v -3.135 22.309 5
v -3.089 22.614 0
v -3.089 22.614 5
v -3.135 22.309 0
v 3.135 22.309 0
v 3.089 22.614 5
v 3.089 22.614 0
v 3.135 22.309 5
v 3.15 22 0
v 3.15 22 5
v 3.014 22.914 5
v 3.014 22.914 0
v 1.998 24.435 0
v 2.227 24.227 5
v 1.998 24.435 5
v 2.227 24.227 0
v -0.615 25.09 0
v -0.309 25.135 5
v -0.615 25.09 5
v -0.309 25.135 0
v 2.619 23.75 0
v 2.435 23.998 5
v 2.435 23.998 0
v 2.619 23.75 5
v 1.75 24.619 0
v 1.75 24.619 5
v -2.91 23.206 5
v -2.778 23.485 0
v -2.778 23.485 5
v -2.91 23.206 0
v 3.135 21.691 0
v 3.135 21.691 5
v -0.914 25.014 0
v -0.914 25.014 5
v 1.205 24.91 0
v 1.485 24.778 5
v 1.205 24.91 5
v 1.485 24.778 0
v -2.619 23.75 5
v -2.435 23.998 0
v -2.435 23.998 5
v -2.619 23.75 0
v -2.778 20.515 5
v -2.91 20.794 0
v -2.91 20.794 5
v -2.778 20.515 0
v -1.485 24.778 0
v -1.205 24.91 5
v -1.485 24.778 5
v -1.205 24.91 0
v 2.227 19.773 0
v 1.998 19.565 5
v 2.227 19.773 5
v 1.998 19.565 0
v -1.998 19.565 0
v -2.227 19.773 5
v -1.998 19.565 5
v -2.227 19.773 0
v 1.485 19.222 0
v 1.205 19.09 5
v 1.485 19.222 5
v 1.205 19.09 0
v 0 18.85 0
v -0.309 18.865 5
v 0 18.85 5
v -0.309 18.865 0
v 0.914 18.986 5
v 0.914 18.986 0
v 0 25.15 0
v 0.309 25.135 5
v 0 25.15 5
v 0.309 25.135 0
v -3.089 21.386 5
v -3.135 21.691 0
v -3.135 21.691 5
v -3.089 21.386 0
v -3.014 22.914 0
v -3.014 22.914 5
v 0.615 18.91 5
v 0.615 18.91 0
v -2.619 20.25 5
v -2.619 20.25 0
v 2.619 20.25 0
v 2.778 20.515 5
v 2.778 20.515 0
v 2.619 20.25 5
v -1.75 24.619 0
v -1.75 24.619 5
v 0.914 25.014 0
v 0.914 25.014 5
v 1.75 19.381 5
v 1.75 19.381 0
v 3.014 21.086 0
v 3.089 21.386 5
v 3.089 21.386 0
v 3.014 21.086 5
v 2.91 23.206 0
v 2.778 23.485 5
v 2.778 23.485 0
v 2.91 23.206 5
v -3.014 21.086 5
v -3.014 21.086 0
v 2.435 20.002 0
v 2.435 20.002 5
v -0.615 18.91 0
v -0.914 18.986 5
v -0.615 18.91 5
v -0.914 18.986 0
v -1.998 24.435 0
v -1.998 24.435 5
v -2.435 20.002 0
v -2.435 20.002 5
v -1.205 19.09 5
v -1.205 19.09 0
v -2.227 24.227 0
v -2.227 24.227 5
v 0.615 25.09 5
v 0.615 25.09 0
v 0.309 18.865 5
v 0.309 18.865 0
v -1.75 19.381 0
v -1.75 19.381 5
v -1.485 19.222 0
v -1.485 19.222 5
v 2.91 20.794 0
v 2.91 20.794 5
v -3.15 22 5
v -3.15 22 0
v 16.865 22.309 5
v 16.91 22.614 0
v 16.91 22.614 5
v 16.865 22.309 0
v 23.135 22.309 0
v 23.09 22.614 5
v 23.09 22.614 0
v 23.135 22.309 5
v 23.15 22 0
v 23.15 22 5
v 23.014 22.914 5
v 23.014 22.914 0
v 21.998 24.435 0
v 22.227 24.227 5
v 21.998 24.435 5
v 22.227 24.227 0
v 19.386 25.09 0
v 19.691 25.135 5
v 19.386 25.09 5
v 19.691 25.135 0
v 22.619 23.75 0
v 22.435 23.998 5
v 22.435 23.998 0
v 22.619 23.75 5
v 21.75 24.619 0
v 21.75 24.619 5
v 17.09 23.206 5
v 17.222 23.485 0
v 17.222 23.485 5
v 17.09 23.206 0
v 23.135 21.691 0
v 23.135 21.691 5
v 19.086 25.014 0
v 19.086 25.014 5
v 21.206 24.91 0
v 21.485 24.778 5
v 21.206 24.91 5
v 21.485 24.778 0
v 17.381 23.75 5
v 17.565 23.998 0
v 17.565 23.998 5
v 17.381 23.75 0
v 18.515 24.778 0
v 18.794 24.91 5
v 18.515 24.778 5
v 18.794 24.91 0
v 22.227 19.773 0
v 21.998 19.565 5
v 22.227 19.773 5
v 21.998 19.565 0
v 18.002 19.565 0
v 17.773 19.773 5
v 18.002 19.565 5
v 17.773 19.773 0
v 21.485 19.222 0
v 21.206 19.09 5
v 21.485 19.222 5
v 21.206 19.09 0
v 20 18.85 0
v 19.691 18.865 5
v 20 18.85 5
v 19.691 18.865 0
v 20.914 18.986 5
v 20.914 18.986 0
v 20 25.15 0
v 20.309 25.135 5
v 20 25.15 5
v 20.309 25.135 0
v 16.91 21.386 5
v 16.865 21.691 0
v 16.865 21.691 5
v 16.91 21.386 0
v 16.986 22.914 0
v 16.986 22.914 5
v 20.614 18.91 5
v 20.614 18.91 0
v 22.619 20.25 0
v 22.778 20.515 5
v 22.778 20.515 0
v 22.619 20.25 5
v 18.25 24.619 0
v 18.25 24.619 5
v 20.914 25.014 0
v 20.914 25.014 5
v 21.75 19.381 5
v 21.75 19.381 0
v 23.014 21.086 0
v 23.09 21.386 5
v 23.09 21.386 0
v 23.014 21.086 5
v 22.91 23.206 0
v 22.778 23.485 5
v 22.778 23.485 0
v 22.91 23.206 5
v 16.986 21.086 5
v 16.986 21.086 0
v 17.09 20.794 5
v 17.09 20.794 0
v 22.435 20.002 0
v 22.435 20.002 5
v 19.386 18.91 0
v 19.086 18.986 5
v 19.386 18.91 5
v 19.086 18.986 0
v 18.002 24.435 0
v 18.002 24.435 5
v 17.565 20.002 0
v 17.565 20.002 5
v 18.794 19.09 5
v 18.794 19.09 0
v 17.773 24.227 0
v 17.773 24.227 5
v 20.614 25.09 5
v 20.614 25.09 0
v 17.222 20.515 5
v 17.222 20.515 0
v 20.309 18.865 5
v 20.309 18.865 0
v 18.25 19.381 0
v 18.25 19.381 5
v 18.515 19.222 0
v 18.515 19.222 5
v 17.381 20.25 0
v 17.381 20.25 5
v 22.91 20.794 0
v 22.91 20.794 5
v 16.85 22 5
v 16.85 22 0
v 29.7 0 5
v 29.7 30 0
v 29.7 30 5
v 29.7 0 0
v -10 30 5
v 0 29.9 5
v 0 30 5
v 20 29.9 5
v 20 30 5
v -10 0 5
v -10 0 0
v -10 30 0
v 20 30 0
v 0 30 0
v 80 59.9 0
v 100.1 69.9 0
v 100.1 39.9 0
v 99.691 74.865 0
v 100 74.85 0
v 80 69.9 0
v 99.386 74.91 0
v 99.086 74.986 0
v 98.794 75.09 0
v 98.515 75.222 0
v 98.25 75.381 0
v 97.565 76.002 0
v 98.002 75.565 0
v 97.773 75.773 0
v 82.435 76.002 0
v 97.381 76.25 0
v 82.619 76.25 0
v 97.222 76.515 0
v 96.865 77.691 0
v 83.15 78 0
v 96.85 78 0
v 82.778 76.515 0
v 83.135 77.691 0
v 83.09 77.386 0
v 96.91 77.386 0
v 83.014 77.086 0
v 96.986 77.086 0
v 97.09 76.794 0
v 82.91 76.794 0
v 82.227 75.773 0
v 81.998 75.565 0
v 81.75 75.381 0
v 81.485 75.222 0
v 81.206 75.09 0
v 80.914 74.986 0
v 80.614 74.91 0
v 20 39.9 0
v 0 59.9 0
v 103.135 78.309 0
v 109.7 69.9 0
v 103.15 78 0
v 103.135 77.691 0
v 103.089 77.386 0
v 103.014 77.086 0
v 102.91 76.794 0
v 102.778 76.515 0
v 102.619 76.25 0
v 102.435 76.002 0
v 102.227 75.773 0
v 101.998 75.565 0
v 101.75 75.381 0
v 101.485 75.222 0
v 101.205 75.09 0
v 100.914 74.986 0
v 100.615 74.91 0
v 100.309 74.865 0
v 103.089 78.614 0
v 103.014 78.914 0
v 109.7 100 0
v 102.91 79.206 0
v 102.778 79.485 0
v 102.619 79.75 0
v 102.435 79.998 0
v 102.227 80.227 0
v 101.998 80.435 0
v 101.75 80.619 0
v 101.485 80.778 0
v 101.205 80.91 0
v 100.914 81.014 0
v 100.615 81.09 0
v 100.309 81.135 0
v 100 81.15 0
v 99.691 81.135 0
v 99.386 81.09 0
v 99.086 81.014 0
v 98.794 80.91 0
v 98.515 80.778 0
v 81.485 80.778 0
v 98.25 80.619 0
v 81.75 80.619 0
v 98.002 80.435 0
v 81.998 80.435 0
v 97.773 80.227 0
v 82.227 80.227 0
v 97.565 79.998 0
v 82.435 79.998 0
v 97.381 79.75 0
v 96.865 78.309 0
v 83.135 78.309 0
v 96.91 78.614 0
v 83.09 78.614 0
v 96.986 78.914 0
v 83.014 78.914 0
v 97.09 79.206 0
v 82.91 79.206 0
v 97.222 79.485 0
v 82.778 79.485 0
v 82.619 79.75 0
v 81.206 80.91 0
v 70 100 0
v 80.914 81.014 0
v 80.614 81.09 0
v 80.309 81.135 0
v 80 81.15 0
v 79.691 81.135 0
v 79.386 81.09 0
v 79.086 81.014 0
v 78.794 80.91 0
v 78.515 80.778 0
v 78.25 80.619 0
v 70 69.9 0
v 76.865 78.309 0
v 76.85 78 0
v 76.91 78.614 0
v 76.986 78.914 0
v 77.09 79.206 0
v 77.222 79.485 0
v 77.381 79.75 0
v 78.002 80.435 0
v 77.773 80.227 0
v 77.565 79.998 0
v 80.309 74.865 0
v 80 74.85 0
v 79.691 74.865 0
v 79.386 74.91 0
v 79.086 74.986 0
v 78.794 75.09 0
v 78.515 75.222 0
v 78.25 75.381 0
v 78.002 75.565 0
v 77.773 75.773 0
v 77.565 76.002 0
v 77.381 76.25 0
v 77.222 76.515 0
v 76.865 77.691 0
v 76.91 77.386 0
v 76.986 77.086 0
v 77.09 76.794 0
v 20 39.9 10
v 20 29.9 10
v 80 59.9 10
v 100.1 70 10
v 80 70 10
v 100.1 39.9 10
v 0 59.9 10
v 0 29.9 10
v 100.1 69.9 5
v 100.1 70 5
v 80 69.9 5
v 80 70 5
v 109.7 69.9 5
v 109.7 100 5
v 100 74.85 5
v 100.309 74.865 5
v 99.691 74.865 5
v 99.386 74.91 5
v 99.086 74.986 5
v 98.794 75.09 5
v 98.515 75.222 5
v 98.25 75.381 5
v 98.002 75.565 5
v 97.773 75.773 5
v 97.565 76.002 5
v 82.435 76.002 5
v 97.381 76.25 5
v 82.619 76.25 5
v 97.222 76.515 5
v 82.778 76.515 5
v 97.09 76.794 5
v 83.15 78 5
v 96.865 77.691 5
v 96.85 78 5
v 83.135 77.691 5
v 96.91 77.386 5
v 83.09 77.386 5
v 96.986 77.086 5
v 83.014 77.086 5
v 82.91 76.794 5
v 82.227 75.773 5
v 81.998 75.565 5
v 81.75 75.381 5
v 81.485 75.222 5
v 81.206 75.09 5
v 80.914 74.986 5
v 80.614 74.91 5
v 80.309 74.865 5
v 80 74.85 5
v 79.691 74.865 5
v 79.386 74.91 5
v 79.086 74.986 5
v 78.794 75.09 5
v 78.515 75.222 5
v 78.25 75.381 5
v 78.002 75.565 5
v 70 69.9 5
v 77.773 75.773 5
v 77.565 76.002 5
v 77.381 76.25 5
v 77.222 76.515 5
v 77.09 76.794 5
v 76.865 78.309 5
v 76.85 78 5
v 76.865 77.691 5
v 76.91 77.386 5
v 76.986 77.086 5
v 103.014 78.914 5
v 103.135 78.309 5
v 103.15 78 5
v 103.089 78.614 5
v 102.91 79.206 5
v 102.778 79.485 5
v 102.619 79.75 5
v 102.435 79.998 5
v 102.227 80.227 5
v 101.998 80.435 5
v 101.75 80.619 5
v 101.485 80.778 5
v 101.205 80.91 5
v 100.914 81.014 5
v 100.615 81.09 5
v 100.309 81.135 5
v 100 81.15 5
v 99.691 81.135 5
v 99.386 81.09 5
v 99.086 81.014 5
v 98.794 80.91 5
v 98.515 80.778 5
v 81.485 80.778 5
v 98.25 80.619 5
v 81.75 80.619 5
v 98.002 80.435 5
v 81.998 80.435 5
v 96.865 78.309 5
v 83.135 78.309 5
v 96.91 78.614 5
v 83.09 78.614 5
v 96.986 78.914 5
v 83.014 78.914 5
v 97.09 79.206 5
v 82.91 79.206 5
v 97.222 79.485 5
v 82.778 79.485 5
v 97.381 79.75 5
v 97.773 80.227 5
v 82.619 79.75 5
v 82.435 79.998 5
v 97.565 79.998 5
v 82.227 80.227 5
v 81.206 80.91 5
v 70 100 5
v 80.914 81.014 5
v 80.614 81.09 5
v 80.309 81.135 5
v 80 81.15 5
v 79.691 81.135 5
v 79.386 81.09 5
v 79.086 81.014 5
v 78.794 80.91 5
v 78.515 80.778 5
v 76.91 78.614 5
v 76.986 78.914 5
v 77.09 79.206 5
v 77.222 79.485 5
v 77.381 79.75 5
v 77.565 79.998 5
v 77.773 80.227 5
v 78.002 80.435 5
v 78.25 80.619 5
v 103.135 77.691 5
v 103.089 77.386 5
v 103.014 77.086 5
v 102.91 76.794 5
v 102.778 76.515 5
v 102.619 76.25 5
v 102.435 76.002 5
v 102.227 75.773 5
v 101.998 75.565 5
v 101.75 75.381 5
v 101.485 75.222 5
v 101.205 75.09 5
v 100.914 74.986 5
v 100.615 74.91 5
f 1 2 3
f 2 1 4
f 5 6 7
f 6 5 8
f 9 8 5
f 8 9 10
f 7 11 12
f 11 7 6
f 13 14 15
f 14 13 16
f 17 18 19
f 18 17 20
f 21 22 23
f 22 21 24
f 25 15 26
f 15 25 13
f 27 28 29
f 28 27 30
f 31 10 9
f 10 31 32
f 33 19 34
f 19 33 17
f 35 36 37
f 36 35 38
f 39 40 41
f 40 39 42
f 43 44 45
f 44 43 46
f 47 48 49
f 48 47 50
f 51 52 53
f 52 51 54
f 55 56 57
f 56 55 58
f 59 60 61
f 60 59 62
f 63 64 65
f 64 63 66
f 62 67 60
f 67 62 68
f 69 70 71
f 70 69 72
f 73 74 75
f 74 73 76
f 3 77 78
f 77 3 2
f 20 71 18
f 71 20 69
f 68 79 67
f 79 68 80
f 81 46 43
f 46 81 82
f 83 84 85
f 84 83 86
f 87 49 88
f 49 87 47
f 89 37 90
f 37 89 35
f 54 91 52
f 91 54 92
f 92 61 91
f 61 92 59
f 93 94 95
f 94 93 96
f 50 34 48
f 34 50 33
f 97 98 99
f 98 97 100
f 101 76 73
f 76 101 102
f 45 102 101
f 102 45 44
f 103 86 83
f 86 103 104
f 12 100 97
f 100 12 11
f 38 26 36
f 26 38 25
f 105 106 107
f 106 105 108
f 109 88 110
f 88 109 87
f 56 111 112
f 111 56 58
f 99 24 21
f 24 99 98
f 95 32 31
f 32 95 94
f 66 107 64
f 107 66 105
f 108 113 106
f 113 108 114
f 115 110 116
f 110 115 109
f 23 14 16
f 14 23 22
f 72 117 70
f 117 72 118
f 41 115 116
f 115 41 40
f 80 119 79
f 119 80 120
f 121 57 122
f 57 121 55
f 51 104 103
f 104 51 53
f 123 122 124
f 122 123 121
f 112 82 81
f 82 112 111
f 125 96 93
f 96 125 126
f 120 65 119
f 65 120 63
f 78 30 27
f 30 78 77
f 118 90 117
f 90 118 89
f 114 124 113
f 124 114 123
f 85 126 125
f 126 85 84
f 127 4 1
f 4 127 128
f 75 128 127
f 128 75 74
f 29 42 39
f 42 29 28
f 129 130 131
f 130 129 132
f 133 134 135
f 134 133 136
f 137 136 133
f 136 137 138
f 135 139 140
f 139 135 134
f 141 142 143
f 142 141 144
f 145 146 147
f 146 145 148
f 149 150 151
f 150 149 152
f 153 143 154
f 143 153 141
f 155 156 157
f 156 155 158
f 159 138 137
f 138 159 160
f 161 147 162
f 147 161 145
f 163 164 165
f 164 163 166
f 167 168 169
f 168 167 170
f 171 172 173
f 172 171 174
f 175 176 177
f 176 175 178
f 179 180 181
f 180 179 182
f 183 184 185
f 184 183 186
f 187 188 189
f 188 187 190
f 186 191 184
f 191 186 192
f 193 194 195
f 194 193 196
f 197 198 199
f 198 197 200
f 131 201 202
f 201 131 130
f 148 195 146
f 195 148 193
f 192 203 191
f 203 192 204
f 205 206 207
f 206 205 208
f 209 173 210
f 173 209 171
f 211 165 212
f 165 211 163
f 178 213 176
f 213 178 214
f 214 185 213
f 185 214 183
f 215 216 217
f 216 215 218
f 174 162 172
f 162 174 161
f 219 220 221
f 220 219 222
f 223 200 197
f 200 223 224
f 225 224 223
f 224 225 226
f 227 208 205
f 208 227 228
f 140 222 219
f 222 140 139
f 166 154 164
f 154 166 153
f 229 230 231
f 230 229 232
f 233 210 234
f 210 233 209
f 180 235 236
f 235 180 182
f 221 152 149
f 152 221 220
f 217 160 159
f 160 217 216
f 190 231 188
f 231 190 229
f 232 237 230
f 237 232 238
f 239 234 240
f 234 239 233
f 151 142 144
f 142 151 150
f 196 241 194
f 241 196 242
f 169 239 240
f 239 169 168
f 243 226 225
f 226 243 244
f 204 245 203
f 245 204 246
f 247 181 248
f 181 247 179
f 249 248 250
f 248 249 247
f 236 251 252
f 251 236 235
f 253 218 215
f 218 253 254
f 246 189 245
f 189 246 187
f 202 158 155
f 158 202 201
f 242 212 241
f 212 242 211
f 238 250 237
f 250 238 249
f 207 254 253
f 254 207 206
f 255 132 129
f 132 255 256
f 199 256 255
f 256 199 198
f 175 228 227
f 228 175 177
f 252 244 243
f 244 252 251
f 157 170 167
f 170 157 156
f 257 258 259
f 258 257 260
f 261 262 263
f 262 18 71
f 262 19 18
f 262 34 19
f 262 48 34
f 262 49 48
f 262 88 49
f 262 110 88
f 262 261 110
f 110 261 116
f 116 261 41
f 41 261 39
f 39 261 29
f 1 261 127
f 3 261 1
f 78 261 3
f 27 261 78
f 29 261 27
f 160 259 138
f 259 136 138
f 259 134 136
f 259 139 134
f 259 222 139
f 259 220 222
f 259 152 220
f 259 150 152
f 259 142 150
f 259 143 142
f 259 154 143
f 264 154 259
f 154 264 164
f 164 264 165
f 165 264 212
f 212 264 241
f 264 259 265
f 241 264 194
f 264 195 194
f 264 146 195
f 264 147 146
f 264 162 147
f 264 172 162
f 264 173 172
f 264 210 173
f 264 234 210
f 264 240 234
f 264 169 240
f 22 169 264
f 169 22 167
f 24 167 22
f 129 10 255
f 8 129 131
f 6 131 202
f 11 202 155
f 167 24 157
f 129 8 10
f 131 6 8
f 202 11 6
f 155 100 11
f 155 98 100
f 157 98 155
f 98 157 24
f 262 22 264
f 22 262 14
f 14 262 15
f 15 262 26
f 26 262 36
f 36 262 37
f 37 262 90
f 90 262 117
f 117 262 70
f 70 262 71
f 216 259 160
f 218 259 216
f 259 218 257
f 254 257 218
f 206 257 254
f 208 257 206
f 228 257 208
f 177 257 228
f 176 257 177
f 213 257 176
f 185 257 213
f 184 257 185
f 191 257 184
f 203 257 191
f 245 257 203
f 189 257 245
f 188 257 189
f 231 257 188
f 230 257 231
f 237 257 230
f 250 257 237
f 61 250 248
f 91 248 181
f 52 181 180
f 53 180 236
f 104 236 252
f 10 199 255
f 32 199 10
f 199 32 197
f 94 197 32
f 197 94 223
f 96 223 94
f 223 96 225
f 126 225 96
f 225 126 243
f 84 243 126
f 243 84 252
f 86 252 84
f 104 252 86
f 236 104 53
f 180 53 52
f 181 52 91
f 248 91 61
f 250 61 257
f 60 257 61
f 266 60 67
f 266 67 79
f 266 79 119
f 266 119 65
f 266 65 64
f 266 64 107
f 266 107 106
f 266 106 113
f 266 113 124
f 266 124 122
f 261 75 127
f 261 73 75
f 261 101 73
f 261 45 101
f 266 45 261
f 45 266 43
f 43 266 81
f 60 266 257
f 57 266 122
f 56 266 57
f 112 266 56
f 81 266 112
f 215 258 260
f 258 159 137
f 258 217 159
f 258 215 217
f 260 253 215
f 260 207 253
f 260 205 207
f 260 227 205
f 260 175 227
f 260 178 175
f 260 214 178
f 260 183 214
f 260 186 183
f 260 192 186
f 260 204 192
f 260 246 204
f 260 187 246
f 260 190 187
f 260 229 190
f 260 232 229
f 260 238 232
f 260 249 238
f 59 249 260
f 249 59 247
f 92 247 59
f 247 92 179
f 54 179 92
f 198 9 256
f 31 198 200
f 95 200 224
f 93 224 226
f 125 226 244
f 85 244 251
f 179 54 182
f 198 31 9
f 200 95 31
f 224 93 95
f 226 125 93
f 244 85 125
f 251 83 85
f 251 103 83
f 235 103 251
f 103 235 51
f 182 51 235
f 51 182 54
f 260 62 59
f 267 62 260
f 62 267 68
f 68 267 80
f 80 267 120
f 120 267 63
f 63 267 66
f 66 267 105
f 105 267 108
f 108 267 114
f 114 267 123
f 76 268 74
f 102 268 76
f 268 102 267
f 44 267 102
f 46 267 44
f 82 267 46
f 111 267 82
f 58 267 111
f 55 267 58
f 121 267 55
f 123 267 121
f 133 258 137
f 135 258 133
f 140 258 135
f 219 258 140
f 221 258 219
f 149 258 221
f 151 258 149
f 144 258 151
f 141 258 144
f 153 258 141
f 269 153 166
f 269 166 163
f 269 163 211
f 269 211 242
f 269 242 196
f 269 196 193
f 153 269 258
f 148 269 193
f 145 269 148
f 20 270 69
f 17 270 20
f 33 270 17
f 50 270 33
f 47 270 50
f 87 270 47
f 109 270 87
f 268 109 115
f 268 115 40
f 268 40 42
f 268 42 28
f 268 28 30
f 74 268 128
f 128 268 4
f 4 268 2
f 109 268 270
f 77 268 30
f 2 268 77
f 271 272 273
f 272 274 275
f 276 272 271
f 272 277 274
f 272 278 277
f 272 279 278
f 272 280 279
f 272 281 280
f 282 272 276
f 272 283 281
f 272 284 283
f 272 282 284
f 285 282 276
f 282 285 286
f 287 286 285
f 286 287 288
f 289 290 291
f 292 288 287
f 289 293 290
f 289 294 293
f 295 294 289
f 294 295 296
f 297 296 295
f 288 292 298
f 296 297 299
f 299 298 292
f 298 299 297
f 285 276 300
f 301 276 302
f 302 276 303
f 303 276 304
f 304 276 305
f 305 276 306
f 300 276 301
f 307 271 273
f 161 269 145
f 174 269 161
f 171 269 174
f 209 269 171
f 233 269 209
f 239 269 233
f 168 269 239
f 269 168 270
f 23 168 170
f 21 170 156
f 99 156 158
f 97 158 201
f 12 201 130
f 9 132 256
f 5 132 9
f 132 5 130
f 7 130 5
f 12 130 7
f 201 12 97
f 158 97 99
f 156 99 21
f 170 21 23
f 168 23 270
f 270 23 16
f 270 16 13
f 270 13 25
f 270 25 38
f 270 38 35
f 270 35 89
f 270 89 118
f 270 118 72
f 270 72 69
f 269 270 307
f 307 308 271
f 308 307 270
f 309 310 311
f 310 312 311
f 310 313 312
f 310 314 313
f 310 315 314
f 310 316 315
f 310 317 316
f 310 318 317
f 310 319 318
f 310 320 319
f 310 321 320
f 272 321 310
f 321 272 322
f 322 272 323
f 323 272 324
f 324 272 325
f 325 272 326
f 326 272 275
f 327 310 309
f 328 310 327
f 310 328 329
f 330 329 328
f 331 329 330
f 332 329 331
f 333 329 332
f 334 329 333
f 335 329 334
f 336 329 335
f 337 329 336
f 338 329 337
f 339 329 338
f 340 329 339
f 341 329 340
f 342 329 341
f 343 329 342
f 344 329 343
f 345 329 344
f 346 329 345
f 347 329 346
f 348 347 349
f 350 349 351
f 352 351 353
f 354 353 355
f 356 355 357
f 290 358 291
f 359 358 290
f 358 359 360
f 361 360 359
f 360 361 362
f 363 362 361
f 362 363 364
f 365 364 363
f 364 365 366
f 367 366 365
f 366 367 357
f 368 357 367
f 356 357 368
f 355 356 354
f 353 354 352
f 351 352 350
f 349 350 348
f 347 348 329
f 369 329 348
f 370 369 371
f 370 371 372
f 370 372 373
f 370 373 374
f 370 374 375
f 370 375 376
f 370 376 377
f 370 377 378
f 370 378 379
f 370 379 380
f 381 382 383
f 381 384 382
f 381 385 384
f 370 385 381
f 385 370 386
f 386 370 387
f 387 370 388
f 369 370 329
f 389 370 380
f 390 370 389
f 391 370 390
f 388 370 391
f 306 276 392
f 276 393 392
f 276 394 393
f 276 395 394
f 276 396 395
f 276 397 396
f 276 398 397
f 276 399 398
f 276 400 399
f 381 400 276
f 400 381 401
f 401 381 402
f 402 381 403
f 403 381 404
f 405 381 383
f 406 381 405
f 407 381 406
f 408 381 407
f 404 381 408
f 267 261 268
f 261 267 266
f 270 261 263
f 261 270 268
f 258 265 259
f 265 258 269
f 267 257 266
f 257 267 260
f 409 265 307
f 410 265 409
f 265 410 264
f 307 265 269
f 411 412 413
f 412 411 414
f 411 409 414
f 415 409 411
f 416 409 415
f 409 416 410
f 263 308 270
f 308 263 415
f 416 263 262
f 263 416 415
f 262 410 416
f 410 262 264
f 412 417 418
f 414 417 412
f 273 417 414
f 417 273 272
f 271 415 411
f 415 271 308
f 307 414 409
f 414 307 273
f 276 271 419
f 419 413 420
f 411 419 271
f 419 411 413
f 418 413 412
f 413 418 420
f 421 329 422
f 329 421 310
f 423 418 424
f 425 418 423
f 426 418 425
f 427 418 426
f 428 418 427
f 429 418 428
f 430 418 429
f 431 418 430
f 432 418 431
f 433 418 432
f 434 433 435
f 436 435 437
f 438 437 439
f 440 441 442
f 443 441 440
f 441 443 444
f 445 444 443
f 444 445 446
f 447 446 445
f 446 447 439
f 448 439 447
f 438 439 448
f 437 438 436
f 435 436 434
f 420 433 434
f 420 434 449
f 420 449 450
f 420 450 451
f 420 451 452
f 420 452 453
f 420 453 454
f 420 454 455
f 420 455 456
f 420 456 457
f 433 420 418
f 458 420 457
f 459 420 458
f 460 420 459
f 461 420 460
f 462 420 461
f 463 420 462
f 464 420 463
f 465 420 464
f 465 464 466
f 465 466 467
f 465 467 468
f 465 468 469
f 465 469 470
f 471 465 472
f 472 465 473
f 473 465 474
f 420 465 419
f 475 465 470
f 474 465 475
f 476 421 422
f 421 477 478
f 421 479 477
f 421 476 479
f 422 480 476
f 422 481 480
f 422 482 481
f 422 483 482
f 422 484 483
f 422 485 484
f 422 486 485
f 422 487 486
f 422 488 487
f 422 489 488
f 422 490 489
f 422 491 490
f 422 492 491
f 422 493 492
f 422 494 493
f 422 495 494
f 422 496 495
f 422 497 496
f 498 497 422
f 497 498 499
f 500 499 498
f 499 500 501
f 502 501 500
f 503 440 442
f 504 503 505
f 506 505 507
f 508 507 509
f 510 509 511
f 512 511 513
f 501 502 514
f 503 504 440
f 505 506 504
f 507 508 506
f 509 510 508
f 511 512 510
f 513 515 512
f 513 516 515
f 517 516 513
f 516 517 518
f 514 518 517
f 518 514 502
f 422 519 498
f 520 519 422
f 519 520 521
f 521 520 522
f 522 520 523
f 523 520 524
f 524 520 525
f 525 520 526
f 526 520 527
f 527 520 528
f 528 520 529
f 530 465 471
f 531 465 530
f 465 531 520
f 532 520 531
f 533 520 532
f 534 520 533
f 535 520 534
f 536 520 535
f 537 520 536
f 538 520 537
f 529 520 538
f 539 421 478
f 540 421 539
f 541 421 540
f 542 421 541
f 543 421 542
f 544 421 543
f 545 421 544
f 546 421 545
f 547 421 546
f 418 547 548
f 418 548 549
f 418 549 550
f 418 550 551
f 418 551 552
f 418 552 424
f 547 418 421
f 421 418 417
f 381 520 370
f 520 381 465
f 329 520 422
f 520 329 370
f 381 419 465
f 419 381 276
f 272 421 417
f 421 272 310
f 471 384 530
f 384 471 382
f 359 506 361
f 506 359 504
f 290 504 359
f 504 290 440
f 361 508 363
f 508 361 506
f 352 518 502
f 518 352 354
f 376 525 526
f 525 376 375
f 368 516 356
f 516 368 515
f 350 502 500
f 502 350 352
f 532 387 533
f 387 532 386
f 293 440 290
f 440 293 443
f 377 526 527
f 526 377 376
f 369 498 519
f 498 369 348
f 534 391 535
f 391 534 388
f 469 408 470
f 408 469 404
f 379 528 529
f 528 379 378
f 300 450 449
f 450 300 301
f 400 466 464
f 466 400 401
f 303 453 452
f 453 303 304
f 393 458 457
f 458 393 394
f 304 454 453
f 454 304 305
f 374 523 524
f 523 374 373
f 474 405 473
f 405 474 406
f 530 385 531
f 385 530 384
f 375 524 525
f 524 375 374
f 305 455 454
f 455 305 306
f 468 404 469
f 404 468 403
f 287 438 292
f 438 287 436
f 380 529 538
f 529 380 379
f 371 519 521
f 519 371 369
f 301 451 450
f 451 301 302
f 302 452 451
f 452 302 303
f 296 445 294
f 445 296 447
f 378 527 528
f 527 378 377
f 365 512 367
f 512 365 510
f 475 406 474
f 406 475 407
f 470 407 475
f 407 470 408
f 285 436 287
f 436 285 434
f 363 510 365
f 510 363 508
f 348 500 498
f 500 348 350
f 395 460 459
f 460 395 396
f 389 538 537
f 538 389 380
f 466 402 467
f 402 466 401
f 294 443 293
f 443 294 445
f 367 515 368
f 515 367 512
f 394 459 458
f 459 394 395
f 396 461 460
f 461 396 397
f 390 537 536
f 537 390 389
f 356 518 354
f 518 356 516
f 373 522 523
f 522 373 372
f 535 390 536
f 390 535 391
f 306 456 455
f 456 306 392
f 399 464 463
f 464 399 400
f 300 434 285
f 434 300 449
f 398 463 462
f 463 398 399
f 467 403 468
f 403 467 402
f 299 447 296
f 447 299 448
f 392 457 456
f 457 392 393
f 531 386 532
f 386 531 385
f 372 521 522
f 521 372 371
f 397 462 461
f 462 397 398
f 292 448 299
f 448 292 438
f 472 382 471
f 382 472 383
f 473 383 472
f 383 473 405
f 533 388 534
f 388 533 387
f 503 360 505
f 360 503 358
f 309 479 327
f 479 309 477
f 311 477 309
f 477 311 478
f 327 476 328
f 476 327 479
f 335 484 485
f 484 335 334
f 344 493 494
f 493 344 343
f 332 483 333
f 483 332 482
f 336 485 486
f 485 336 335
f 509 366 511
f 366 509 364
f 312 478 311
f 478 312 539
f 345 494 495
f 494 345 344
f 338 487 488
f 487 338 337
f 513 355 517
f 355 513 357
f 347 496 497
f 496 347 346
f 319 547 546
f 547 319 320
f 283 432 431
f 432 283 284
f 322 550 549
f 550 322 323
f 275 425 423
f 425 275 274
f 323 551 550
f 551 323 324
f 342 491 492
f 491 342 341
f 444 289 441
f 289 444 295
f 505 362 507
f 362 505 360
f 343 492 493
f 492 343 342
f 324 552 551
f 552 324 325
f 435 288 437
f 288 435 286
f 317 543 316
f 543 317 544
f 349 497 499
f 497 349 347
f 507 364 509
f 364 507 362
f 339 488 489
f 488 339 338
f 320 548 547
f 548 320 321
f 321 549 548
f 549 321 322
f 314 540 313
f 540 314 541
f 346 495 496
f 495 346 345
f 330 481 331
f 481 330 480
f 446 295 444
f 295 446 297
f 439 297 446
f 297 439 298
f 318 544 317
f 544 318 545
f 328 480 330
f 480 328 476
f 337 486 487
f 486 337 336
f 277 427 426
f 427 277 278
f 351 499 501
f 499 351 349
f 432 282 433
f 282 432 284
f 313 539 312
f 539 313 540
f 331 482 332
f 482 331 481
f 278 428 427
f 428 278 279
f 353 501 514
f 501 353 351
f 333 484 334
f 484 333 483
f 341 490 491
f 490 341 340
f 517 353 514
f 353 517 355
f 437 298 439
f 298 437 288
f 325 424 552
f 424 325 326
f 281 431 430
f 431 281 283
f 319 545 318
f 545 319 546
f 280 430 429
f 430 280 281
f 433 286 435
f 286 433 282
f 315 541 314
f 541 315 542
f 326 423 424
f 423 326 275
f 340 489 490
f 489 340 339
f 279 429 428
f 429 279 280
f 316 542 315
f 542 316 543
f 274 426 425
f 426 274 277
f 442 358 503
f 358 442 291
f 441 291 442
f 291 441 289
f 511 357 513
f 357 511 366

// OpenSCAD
// Braccetto di collegamento a S tra due case (2D sul piano XY)

// === PARAMETRI MODIFICABILI ===

// Parametri pin
pin_diameter = 6;
pin_spacing = 20;
pin_offset = 5;          // Distanza dei pin dall'estremità del mini braccetto
pin_clearance = 0.3;     // Tolleranza per inserimento facile

// Forma a S (piana)
s_offset = 10;           // Spostamento avanti del primo e terzo tratto (mm)
s_lateral = 100;         // Lunghezza del tratto orizzontale (mm)
connector_width = 20;    // Larghezza del corpo (mm)
connector_thickness = 10; // Spessore del corpo (Z)

// Estremità per incastro
step_width = 40;         // Larghezza delle estremità
step_length = 30;        // Lunghezza delle estremità
step_thickness = 5;      // Spessore delle estremità
step_clearance = 0.3;    // Gioco per incastro

// Profondità fori
hole_depth = 16;         // Profondità dei fori per i pin

// Risoluzione
$fn = 64;

// === MODULI ===

// Fori per estremità inferiore
module pin_holes_bottom() {
    pin_position = step_length - (pin_diameter/2 + pin_offset);
    translate([step_width/2 - pin_spacing/2, pin_position, -0.1])
        cylinder(h=hole_depth + 0.2, d=pin_diameter + pin_clearance);
    translate([step_width/2 + pin_spacing/2, pin_position, -0.1])
        cylinder(h=hole_depth + 0.2, d=pin_diameter + pin_clearance);
}

// Fori per estremità superiore
module pin_holes_top() {
    pin_position = pin_diameter/2 + pin_offset;
    translate([step_width/2 - pin_spacing/2, pin_position, -0.1])
        cylinder(h=hole_depth + 0.2, d=pin_diameter + pin_clearance);
    translate([step_width/2 + pin_spacing/2, pin_position, -0.1])
        cylinder(h=hole_depth + 0.2, d=pin_diameter + pin_clearance);
}

// Braccetto completo a S piana
module connector_arm() {
    difference() {
        union() {
            // === ESTREMITÀ INFERIORE ===
            translate([(connector_width - step_width)/2, 0, 0])
                cube([step_width - step_clearance, step_length, step_thickness]);

            // === PRIMO TRATTO: 10mm avanti (con sovrapposizione) ===
            translate([0, step_length - 0.1, 0])
                cube([connector_width, s_offset + 0.1, connector_thickness]);

            // === SECONDO TRATTO: 100mm orizzontale (con sovrapposizione) ===
            translate([0, step_length + s_offset - 0.1, 0])
                cube([s_lateral + 0.1, connector_width, connector_thickness]);

            // === TERZO TRATTO: 10mm avanti (CORRETTO - inizia dove finisce il secondo) ===
            translate([s_lateral-(step_width/2), step_length + s_offset + connector_width - 0.1, 0])
                cube([connector_width + 0.1, s_offset + 0.1, connector_thickness]);

            // === ESTREMITÀ SUPERIORE (con sovrapposizione) ===
            translate([s_lateral + (connector_width - step_width)/2 - (step_width/2), step_length + 2*s_offset + connector_width - 0.1, 0])
                cube([step_width - step_clearance, step_length + 0.1, step_thickness]);
        }

        // Fori estremità inferiore
        translate([(connector_width - step_width)/2, 0, -0.1])
            pin_holes_bottom();

        // Fori estremità superiore
        translate([s_lateral + (connector_width - step_width)/2 - (step_width/2), step_length + 2*s_offset + connector_width, -0.1])
            pin_holes_top();
    }
}

// === OUTPUT ===
connector_arm();
